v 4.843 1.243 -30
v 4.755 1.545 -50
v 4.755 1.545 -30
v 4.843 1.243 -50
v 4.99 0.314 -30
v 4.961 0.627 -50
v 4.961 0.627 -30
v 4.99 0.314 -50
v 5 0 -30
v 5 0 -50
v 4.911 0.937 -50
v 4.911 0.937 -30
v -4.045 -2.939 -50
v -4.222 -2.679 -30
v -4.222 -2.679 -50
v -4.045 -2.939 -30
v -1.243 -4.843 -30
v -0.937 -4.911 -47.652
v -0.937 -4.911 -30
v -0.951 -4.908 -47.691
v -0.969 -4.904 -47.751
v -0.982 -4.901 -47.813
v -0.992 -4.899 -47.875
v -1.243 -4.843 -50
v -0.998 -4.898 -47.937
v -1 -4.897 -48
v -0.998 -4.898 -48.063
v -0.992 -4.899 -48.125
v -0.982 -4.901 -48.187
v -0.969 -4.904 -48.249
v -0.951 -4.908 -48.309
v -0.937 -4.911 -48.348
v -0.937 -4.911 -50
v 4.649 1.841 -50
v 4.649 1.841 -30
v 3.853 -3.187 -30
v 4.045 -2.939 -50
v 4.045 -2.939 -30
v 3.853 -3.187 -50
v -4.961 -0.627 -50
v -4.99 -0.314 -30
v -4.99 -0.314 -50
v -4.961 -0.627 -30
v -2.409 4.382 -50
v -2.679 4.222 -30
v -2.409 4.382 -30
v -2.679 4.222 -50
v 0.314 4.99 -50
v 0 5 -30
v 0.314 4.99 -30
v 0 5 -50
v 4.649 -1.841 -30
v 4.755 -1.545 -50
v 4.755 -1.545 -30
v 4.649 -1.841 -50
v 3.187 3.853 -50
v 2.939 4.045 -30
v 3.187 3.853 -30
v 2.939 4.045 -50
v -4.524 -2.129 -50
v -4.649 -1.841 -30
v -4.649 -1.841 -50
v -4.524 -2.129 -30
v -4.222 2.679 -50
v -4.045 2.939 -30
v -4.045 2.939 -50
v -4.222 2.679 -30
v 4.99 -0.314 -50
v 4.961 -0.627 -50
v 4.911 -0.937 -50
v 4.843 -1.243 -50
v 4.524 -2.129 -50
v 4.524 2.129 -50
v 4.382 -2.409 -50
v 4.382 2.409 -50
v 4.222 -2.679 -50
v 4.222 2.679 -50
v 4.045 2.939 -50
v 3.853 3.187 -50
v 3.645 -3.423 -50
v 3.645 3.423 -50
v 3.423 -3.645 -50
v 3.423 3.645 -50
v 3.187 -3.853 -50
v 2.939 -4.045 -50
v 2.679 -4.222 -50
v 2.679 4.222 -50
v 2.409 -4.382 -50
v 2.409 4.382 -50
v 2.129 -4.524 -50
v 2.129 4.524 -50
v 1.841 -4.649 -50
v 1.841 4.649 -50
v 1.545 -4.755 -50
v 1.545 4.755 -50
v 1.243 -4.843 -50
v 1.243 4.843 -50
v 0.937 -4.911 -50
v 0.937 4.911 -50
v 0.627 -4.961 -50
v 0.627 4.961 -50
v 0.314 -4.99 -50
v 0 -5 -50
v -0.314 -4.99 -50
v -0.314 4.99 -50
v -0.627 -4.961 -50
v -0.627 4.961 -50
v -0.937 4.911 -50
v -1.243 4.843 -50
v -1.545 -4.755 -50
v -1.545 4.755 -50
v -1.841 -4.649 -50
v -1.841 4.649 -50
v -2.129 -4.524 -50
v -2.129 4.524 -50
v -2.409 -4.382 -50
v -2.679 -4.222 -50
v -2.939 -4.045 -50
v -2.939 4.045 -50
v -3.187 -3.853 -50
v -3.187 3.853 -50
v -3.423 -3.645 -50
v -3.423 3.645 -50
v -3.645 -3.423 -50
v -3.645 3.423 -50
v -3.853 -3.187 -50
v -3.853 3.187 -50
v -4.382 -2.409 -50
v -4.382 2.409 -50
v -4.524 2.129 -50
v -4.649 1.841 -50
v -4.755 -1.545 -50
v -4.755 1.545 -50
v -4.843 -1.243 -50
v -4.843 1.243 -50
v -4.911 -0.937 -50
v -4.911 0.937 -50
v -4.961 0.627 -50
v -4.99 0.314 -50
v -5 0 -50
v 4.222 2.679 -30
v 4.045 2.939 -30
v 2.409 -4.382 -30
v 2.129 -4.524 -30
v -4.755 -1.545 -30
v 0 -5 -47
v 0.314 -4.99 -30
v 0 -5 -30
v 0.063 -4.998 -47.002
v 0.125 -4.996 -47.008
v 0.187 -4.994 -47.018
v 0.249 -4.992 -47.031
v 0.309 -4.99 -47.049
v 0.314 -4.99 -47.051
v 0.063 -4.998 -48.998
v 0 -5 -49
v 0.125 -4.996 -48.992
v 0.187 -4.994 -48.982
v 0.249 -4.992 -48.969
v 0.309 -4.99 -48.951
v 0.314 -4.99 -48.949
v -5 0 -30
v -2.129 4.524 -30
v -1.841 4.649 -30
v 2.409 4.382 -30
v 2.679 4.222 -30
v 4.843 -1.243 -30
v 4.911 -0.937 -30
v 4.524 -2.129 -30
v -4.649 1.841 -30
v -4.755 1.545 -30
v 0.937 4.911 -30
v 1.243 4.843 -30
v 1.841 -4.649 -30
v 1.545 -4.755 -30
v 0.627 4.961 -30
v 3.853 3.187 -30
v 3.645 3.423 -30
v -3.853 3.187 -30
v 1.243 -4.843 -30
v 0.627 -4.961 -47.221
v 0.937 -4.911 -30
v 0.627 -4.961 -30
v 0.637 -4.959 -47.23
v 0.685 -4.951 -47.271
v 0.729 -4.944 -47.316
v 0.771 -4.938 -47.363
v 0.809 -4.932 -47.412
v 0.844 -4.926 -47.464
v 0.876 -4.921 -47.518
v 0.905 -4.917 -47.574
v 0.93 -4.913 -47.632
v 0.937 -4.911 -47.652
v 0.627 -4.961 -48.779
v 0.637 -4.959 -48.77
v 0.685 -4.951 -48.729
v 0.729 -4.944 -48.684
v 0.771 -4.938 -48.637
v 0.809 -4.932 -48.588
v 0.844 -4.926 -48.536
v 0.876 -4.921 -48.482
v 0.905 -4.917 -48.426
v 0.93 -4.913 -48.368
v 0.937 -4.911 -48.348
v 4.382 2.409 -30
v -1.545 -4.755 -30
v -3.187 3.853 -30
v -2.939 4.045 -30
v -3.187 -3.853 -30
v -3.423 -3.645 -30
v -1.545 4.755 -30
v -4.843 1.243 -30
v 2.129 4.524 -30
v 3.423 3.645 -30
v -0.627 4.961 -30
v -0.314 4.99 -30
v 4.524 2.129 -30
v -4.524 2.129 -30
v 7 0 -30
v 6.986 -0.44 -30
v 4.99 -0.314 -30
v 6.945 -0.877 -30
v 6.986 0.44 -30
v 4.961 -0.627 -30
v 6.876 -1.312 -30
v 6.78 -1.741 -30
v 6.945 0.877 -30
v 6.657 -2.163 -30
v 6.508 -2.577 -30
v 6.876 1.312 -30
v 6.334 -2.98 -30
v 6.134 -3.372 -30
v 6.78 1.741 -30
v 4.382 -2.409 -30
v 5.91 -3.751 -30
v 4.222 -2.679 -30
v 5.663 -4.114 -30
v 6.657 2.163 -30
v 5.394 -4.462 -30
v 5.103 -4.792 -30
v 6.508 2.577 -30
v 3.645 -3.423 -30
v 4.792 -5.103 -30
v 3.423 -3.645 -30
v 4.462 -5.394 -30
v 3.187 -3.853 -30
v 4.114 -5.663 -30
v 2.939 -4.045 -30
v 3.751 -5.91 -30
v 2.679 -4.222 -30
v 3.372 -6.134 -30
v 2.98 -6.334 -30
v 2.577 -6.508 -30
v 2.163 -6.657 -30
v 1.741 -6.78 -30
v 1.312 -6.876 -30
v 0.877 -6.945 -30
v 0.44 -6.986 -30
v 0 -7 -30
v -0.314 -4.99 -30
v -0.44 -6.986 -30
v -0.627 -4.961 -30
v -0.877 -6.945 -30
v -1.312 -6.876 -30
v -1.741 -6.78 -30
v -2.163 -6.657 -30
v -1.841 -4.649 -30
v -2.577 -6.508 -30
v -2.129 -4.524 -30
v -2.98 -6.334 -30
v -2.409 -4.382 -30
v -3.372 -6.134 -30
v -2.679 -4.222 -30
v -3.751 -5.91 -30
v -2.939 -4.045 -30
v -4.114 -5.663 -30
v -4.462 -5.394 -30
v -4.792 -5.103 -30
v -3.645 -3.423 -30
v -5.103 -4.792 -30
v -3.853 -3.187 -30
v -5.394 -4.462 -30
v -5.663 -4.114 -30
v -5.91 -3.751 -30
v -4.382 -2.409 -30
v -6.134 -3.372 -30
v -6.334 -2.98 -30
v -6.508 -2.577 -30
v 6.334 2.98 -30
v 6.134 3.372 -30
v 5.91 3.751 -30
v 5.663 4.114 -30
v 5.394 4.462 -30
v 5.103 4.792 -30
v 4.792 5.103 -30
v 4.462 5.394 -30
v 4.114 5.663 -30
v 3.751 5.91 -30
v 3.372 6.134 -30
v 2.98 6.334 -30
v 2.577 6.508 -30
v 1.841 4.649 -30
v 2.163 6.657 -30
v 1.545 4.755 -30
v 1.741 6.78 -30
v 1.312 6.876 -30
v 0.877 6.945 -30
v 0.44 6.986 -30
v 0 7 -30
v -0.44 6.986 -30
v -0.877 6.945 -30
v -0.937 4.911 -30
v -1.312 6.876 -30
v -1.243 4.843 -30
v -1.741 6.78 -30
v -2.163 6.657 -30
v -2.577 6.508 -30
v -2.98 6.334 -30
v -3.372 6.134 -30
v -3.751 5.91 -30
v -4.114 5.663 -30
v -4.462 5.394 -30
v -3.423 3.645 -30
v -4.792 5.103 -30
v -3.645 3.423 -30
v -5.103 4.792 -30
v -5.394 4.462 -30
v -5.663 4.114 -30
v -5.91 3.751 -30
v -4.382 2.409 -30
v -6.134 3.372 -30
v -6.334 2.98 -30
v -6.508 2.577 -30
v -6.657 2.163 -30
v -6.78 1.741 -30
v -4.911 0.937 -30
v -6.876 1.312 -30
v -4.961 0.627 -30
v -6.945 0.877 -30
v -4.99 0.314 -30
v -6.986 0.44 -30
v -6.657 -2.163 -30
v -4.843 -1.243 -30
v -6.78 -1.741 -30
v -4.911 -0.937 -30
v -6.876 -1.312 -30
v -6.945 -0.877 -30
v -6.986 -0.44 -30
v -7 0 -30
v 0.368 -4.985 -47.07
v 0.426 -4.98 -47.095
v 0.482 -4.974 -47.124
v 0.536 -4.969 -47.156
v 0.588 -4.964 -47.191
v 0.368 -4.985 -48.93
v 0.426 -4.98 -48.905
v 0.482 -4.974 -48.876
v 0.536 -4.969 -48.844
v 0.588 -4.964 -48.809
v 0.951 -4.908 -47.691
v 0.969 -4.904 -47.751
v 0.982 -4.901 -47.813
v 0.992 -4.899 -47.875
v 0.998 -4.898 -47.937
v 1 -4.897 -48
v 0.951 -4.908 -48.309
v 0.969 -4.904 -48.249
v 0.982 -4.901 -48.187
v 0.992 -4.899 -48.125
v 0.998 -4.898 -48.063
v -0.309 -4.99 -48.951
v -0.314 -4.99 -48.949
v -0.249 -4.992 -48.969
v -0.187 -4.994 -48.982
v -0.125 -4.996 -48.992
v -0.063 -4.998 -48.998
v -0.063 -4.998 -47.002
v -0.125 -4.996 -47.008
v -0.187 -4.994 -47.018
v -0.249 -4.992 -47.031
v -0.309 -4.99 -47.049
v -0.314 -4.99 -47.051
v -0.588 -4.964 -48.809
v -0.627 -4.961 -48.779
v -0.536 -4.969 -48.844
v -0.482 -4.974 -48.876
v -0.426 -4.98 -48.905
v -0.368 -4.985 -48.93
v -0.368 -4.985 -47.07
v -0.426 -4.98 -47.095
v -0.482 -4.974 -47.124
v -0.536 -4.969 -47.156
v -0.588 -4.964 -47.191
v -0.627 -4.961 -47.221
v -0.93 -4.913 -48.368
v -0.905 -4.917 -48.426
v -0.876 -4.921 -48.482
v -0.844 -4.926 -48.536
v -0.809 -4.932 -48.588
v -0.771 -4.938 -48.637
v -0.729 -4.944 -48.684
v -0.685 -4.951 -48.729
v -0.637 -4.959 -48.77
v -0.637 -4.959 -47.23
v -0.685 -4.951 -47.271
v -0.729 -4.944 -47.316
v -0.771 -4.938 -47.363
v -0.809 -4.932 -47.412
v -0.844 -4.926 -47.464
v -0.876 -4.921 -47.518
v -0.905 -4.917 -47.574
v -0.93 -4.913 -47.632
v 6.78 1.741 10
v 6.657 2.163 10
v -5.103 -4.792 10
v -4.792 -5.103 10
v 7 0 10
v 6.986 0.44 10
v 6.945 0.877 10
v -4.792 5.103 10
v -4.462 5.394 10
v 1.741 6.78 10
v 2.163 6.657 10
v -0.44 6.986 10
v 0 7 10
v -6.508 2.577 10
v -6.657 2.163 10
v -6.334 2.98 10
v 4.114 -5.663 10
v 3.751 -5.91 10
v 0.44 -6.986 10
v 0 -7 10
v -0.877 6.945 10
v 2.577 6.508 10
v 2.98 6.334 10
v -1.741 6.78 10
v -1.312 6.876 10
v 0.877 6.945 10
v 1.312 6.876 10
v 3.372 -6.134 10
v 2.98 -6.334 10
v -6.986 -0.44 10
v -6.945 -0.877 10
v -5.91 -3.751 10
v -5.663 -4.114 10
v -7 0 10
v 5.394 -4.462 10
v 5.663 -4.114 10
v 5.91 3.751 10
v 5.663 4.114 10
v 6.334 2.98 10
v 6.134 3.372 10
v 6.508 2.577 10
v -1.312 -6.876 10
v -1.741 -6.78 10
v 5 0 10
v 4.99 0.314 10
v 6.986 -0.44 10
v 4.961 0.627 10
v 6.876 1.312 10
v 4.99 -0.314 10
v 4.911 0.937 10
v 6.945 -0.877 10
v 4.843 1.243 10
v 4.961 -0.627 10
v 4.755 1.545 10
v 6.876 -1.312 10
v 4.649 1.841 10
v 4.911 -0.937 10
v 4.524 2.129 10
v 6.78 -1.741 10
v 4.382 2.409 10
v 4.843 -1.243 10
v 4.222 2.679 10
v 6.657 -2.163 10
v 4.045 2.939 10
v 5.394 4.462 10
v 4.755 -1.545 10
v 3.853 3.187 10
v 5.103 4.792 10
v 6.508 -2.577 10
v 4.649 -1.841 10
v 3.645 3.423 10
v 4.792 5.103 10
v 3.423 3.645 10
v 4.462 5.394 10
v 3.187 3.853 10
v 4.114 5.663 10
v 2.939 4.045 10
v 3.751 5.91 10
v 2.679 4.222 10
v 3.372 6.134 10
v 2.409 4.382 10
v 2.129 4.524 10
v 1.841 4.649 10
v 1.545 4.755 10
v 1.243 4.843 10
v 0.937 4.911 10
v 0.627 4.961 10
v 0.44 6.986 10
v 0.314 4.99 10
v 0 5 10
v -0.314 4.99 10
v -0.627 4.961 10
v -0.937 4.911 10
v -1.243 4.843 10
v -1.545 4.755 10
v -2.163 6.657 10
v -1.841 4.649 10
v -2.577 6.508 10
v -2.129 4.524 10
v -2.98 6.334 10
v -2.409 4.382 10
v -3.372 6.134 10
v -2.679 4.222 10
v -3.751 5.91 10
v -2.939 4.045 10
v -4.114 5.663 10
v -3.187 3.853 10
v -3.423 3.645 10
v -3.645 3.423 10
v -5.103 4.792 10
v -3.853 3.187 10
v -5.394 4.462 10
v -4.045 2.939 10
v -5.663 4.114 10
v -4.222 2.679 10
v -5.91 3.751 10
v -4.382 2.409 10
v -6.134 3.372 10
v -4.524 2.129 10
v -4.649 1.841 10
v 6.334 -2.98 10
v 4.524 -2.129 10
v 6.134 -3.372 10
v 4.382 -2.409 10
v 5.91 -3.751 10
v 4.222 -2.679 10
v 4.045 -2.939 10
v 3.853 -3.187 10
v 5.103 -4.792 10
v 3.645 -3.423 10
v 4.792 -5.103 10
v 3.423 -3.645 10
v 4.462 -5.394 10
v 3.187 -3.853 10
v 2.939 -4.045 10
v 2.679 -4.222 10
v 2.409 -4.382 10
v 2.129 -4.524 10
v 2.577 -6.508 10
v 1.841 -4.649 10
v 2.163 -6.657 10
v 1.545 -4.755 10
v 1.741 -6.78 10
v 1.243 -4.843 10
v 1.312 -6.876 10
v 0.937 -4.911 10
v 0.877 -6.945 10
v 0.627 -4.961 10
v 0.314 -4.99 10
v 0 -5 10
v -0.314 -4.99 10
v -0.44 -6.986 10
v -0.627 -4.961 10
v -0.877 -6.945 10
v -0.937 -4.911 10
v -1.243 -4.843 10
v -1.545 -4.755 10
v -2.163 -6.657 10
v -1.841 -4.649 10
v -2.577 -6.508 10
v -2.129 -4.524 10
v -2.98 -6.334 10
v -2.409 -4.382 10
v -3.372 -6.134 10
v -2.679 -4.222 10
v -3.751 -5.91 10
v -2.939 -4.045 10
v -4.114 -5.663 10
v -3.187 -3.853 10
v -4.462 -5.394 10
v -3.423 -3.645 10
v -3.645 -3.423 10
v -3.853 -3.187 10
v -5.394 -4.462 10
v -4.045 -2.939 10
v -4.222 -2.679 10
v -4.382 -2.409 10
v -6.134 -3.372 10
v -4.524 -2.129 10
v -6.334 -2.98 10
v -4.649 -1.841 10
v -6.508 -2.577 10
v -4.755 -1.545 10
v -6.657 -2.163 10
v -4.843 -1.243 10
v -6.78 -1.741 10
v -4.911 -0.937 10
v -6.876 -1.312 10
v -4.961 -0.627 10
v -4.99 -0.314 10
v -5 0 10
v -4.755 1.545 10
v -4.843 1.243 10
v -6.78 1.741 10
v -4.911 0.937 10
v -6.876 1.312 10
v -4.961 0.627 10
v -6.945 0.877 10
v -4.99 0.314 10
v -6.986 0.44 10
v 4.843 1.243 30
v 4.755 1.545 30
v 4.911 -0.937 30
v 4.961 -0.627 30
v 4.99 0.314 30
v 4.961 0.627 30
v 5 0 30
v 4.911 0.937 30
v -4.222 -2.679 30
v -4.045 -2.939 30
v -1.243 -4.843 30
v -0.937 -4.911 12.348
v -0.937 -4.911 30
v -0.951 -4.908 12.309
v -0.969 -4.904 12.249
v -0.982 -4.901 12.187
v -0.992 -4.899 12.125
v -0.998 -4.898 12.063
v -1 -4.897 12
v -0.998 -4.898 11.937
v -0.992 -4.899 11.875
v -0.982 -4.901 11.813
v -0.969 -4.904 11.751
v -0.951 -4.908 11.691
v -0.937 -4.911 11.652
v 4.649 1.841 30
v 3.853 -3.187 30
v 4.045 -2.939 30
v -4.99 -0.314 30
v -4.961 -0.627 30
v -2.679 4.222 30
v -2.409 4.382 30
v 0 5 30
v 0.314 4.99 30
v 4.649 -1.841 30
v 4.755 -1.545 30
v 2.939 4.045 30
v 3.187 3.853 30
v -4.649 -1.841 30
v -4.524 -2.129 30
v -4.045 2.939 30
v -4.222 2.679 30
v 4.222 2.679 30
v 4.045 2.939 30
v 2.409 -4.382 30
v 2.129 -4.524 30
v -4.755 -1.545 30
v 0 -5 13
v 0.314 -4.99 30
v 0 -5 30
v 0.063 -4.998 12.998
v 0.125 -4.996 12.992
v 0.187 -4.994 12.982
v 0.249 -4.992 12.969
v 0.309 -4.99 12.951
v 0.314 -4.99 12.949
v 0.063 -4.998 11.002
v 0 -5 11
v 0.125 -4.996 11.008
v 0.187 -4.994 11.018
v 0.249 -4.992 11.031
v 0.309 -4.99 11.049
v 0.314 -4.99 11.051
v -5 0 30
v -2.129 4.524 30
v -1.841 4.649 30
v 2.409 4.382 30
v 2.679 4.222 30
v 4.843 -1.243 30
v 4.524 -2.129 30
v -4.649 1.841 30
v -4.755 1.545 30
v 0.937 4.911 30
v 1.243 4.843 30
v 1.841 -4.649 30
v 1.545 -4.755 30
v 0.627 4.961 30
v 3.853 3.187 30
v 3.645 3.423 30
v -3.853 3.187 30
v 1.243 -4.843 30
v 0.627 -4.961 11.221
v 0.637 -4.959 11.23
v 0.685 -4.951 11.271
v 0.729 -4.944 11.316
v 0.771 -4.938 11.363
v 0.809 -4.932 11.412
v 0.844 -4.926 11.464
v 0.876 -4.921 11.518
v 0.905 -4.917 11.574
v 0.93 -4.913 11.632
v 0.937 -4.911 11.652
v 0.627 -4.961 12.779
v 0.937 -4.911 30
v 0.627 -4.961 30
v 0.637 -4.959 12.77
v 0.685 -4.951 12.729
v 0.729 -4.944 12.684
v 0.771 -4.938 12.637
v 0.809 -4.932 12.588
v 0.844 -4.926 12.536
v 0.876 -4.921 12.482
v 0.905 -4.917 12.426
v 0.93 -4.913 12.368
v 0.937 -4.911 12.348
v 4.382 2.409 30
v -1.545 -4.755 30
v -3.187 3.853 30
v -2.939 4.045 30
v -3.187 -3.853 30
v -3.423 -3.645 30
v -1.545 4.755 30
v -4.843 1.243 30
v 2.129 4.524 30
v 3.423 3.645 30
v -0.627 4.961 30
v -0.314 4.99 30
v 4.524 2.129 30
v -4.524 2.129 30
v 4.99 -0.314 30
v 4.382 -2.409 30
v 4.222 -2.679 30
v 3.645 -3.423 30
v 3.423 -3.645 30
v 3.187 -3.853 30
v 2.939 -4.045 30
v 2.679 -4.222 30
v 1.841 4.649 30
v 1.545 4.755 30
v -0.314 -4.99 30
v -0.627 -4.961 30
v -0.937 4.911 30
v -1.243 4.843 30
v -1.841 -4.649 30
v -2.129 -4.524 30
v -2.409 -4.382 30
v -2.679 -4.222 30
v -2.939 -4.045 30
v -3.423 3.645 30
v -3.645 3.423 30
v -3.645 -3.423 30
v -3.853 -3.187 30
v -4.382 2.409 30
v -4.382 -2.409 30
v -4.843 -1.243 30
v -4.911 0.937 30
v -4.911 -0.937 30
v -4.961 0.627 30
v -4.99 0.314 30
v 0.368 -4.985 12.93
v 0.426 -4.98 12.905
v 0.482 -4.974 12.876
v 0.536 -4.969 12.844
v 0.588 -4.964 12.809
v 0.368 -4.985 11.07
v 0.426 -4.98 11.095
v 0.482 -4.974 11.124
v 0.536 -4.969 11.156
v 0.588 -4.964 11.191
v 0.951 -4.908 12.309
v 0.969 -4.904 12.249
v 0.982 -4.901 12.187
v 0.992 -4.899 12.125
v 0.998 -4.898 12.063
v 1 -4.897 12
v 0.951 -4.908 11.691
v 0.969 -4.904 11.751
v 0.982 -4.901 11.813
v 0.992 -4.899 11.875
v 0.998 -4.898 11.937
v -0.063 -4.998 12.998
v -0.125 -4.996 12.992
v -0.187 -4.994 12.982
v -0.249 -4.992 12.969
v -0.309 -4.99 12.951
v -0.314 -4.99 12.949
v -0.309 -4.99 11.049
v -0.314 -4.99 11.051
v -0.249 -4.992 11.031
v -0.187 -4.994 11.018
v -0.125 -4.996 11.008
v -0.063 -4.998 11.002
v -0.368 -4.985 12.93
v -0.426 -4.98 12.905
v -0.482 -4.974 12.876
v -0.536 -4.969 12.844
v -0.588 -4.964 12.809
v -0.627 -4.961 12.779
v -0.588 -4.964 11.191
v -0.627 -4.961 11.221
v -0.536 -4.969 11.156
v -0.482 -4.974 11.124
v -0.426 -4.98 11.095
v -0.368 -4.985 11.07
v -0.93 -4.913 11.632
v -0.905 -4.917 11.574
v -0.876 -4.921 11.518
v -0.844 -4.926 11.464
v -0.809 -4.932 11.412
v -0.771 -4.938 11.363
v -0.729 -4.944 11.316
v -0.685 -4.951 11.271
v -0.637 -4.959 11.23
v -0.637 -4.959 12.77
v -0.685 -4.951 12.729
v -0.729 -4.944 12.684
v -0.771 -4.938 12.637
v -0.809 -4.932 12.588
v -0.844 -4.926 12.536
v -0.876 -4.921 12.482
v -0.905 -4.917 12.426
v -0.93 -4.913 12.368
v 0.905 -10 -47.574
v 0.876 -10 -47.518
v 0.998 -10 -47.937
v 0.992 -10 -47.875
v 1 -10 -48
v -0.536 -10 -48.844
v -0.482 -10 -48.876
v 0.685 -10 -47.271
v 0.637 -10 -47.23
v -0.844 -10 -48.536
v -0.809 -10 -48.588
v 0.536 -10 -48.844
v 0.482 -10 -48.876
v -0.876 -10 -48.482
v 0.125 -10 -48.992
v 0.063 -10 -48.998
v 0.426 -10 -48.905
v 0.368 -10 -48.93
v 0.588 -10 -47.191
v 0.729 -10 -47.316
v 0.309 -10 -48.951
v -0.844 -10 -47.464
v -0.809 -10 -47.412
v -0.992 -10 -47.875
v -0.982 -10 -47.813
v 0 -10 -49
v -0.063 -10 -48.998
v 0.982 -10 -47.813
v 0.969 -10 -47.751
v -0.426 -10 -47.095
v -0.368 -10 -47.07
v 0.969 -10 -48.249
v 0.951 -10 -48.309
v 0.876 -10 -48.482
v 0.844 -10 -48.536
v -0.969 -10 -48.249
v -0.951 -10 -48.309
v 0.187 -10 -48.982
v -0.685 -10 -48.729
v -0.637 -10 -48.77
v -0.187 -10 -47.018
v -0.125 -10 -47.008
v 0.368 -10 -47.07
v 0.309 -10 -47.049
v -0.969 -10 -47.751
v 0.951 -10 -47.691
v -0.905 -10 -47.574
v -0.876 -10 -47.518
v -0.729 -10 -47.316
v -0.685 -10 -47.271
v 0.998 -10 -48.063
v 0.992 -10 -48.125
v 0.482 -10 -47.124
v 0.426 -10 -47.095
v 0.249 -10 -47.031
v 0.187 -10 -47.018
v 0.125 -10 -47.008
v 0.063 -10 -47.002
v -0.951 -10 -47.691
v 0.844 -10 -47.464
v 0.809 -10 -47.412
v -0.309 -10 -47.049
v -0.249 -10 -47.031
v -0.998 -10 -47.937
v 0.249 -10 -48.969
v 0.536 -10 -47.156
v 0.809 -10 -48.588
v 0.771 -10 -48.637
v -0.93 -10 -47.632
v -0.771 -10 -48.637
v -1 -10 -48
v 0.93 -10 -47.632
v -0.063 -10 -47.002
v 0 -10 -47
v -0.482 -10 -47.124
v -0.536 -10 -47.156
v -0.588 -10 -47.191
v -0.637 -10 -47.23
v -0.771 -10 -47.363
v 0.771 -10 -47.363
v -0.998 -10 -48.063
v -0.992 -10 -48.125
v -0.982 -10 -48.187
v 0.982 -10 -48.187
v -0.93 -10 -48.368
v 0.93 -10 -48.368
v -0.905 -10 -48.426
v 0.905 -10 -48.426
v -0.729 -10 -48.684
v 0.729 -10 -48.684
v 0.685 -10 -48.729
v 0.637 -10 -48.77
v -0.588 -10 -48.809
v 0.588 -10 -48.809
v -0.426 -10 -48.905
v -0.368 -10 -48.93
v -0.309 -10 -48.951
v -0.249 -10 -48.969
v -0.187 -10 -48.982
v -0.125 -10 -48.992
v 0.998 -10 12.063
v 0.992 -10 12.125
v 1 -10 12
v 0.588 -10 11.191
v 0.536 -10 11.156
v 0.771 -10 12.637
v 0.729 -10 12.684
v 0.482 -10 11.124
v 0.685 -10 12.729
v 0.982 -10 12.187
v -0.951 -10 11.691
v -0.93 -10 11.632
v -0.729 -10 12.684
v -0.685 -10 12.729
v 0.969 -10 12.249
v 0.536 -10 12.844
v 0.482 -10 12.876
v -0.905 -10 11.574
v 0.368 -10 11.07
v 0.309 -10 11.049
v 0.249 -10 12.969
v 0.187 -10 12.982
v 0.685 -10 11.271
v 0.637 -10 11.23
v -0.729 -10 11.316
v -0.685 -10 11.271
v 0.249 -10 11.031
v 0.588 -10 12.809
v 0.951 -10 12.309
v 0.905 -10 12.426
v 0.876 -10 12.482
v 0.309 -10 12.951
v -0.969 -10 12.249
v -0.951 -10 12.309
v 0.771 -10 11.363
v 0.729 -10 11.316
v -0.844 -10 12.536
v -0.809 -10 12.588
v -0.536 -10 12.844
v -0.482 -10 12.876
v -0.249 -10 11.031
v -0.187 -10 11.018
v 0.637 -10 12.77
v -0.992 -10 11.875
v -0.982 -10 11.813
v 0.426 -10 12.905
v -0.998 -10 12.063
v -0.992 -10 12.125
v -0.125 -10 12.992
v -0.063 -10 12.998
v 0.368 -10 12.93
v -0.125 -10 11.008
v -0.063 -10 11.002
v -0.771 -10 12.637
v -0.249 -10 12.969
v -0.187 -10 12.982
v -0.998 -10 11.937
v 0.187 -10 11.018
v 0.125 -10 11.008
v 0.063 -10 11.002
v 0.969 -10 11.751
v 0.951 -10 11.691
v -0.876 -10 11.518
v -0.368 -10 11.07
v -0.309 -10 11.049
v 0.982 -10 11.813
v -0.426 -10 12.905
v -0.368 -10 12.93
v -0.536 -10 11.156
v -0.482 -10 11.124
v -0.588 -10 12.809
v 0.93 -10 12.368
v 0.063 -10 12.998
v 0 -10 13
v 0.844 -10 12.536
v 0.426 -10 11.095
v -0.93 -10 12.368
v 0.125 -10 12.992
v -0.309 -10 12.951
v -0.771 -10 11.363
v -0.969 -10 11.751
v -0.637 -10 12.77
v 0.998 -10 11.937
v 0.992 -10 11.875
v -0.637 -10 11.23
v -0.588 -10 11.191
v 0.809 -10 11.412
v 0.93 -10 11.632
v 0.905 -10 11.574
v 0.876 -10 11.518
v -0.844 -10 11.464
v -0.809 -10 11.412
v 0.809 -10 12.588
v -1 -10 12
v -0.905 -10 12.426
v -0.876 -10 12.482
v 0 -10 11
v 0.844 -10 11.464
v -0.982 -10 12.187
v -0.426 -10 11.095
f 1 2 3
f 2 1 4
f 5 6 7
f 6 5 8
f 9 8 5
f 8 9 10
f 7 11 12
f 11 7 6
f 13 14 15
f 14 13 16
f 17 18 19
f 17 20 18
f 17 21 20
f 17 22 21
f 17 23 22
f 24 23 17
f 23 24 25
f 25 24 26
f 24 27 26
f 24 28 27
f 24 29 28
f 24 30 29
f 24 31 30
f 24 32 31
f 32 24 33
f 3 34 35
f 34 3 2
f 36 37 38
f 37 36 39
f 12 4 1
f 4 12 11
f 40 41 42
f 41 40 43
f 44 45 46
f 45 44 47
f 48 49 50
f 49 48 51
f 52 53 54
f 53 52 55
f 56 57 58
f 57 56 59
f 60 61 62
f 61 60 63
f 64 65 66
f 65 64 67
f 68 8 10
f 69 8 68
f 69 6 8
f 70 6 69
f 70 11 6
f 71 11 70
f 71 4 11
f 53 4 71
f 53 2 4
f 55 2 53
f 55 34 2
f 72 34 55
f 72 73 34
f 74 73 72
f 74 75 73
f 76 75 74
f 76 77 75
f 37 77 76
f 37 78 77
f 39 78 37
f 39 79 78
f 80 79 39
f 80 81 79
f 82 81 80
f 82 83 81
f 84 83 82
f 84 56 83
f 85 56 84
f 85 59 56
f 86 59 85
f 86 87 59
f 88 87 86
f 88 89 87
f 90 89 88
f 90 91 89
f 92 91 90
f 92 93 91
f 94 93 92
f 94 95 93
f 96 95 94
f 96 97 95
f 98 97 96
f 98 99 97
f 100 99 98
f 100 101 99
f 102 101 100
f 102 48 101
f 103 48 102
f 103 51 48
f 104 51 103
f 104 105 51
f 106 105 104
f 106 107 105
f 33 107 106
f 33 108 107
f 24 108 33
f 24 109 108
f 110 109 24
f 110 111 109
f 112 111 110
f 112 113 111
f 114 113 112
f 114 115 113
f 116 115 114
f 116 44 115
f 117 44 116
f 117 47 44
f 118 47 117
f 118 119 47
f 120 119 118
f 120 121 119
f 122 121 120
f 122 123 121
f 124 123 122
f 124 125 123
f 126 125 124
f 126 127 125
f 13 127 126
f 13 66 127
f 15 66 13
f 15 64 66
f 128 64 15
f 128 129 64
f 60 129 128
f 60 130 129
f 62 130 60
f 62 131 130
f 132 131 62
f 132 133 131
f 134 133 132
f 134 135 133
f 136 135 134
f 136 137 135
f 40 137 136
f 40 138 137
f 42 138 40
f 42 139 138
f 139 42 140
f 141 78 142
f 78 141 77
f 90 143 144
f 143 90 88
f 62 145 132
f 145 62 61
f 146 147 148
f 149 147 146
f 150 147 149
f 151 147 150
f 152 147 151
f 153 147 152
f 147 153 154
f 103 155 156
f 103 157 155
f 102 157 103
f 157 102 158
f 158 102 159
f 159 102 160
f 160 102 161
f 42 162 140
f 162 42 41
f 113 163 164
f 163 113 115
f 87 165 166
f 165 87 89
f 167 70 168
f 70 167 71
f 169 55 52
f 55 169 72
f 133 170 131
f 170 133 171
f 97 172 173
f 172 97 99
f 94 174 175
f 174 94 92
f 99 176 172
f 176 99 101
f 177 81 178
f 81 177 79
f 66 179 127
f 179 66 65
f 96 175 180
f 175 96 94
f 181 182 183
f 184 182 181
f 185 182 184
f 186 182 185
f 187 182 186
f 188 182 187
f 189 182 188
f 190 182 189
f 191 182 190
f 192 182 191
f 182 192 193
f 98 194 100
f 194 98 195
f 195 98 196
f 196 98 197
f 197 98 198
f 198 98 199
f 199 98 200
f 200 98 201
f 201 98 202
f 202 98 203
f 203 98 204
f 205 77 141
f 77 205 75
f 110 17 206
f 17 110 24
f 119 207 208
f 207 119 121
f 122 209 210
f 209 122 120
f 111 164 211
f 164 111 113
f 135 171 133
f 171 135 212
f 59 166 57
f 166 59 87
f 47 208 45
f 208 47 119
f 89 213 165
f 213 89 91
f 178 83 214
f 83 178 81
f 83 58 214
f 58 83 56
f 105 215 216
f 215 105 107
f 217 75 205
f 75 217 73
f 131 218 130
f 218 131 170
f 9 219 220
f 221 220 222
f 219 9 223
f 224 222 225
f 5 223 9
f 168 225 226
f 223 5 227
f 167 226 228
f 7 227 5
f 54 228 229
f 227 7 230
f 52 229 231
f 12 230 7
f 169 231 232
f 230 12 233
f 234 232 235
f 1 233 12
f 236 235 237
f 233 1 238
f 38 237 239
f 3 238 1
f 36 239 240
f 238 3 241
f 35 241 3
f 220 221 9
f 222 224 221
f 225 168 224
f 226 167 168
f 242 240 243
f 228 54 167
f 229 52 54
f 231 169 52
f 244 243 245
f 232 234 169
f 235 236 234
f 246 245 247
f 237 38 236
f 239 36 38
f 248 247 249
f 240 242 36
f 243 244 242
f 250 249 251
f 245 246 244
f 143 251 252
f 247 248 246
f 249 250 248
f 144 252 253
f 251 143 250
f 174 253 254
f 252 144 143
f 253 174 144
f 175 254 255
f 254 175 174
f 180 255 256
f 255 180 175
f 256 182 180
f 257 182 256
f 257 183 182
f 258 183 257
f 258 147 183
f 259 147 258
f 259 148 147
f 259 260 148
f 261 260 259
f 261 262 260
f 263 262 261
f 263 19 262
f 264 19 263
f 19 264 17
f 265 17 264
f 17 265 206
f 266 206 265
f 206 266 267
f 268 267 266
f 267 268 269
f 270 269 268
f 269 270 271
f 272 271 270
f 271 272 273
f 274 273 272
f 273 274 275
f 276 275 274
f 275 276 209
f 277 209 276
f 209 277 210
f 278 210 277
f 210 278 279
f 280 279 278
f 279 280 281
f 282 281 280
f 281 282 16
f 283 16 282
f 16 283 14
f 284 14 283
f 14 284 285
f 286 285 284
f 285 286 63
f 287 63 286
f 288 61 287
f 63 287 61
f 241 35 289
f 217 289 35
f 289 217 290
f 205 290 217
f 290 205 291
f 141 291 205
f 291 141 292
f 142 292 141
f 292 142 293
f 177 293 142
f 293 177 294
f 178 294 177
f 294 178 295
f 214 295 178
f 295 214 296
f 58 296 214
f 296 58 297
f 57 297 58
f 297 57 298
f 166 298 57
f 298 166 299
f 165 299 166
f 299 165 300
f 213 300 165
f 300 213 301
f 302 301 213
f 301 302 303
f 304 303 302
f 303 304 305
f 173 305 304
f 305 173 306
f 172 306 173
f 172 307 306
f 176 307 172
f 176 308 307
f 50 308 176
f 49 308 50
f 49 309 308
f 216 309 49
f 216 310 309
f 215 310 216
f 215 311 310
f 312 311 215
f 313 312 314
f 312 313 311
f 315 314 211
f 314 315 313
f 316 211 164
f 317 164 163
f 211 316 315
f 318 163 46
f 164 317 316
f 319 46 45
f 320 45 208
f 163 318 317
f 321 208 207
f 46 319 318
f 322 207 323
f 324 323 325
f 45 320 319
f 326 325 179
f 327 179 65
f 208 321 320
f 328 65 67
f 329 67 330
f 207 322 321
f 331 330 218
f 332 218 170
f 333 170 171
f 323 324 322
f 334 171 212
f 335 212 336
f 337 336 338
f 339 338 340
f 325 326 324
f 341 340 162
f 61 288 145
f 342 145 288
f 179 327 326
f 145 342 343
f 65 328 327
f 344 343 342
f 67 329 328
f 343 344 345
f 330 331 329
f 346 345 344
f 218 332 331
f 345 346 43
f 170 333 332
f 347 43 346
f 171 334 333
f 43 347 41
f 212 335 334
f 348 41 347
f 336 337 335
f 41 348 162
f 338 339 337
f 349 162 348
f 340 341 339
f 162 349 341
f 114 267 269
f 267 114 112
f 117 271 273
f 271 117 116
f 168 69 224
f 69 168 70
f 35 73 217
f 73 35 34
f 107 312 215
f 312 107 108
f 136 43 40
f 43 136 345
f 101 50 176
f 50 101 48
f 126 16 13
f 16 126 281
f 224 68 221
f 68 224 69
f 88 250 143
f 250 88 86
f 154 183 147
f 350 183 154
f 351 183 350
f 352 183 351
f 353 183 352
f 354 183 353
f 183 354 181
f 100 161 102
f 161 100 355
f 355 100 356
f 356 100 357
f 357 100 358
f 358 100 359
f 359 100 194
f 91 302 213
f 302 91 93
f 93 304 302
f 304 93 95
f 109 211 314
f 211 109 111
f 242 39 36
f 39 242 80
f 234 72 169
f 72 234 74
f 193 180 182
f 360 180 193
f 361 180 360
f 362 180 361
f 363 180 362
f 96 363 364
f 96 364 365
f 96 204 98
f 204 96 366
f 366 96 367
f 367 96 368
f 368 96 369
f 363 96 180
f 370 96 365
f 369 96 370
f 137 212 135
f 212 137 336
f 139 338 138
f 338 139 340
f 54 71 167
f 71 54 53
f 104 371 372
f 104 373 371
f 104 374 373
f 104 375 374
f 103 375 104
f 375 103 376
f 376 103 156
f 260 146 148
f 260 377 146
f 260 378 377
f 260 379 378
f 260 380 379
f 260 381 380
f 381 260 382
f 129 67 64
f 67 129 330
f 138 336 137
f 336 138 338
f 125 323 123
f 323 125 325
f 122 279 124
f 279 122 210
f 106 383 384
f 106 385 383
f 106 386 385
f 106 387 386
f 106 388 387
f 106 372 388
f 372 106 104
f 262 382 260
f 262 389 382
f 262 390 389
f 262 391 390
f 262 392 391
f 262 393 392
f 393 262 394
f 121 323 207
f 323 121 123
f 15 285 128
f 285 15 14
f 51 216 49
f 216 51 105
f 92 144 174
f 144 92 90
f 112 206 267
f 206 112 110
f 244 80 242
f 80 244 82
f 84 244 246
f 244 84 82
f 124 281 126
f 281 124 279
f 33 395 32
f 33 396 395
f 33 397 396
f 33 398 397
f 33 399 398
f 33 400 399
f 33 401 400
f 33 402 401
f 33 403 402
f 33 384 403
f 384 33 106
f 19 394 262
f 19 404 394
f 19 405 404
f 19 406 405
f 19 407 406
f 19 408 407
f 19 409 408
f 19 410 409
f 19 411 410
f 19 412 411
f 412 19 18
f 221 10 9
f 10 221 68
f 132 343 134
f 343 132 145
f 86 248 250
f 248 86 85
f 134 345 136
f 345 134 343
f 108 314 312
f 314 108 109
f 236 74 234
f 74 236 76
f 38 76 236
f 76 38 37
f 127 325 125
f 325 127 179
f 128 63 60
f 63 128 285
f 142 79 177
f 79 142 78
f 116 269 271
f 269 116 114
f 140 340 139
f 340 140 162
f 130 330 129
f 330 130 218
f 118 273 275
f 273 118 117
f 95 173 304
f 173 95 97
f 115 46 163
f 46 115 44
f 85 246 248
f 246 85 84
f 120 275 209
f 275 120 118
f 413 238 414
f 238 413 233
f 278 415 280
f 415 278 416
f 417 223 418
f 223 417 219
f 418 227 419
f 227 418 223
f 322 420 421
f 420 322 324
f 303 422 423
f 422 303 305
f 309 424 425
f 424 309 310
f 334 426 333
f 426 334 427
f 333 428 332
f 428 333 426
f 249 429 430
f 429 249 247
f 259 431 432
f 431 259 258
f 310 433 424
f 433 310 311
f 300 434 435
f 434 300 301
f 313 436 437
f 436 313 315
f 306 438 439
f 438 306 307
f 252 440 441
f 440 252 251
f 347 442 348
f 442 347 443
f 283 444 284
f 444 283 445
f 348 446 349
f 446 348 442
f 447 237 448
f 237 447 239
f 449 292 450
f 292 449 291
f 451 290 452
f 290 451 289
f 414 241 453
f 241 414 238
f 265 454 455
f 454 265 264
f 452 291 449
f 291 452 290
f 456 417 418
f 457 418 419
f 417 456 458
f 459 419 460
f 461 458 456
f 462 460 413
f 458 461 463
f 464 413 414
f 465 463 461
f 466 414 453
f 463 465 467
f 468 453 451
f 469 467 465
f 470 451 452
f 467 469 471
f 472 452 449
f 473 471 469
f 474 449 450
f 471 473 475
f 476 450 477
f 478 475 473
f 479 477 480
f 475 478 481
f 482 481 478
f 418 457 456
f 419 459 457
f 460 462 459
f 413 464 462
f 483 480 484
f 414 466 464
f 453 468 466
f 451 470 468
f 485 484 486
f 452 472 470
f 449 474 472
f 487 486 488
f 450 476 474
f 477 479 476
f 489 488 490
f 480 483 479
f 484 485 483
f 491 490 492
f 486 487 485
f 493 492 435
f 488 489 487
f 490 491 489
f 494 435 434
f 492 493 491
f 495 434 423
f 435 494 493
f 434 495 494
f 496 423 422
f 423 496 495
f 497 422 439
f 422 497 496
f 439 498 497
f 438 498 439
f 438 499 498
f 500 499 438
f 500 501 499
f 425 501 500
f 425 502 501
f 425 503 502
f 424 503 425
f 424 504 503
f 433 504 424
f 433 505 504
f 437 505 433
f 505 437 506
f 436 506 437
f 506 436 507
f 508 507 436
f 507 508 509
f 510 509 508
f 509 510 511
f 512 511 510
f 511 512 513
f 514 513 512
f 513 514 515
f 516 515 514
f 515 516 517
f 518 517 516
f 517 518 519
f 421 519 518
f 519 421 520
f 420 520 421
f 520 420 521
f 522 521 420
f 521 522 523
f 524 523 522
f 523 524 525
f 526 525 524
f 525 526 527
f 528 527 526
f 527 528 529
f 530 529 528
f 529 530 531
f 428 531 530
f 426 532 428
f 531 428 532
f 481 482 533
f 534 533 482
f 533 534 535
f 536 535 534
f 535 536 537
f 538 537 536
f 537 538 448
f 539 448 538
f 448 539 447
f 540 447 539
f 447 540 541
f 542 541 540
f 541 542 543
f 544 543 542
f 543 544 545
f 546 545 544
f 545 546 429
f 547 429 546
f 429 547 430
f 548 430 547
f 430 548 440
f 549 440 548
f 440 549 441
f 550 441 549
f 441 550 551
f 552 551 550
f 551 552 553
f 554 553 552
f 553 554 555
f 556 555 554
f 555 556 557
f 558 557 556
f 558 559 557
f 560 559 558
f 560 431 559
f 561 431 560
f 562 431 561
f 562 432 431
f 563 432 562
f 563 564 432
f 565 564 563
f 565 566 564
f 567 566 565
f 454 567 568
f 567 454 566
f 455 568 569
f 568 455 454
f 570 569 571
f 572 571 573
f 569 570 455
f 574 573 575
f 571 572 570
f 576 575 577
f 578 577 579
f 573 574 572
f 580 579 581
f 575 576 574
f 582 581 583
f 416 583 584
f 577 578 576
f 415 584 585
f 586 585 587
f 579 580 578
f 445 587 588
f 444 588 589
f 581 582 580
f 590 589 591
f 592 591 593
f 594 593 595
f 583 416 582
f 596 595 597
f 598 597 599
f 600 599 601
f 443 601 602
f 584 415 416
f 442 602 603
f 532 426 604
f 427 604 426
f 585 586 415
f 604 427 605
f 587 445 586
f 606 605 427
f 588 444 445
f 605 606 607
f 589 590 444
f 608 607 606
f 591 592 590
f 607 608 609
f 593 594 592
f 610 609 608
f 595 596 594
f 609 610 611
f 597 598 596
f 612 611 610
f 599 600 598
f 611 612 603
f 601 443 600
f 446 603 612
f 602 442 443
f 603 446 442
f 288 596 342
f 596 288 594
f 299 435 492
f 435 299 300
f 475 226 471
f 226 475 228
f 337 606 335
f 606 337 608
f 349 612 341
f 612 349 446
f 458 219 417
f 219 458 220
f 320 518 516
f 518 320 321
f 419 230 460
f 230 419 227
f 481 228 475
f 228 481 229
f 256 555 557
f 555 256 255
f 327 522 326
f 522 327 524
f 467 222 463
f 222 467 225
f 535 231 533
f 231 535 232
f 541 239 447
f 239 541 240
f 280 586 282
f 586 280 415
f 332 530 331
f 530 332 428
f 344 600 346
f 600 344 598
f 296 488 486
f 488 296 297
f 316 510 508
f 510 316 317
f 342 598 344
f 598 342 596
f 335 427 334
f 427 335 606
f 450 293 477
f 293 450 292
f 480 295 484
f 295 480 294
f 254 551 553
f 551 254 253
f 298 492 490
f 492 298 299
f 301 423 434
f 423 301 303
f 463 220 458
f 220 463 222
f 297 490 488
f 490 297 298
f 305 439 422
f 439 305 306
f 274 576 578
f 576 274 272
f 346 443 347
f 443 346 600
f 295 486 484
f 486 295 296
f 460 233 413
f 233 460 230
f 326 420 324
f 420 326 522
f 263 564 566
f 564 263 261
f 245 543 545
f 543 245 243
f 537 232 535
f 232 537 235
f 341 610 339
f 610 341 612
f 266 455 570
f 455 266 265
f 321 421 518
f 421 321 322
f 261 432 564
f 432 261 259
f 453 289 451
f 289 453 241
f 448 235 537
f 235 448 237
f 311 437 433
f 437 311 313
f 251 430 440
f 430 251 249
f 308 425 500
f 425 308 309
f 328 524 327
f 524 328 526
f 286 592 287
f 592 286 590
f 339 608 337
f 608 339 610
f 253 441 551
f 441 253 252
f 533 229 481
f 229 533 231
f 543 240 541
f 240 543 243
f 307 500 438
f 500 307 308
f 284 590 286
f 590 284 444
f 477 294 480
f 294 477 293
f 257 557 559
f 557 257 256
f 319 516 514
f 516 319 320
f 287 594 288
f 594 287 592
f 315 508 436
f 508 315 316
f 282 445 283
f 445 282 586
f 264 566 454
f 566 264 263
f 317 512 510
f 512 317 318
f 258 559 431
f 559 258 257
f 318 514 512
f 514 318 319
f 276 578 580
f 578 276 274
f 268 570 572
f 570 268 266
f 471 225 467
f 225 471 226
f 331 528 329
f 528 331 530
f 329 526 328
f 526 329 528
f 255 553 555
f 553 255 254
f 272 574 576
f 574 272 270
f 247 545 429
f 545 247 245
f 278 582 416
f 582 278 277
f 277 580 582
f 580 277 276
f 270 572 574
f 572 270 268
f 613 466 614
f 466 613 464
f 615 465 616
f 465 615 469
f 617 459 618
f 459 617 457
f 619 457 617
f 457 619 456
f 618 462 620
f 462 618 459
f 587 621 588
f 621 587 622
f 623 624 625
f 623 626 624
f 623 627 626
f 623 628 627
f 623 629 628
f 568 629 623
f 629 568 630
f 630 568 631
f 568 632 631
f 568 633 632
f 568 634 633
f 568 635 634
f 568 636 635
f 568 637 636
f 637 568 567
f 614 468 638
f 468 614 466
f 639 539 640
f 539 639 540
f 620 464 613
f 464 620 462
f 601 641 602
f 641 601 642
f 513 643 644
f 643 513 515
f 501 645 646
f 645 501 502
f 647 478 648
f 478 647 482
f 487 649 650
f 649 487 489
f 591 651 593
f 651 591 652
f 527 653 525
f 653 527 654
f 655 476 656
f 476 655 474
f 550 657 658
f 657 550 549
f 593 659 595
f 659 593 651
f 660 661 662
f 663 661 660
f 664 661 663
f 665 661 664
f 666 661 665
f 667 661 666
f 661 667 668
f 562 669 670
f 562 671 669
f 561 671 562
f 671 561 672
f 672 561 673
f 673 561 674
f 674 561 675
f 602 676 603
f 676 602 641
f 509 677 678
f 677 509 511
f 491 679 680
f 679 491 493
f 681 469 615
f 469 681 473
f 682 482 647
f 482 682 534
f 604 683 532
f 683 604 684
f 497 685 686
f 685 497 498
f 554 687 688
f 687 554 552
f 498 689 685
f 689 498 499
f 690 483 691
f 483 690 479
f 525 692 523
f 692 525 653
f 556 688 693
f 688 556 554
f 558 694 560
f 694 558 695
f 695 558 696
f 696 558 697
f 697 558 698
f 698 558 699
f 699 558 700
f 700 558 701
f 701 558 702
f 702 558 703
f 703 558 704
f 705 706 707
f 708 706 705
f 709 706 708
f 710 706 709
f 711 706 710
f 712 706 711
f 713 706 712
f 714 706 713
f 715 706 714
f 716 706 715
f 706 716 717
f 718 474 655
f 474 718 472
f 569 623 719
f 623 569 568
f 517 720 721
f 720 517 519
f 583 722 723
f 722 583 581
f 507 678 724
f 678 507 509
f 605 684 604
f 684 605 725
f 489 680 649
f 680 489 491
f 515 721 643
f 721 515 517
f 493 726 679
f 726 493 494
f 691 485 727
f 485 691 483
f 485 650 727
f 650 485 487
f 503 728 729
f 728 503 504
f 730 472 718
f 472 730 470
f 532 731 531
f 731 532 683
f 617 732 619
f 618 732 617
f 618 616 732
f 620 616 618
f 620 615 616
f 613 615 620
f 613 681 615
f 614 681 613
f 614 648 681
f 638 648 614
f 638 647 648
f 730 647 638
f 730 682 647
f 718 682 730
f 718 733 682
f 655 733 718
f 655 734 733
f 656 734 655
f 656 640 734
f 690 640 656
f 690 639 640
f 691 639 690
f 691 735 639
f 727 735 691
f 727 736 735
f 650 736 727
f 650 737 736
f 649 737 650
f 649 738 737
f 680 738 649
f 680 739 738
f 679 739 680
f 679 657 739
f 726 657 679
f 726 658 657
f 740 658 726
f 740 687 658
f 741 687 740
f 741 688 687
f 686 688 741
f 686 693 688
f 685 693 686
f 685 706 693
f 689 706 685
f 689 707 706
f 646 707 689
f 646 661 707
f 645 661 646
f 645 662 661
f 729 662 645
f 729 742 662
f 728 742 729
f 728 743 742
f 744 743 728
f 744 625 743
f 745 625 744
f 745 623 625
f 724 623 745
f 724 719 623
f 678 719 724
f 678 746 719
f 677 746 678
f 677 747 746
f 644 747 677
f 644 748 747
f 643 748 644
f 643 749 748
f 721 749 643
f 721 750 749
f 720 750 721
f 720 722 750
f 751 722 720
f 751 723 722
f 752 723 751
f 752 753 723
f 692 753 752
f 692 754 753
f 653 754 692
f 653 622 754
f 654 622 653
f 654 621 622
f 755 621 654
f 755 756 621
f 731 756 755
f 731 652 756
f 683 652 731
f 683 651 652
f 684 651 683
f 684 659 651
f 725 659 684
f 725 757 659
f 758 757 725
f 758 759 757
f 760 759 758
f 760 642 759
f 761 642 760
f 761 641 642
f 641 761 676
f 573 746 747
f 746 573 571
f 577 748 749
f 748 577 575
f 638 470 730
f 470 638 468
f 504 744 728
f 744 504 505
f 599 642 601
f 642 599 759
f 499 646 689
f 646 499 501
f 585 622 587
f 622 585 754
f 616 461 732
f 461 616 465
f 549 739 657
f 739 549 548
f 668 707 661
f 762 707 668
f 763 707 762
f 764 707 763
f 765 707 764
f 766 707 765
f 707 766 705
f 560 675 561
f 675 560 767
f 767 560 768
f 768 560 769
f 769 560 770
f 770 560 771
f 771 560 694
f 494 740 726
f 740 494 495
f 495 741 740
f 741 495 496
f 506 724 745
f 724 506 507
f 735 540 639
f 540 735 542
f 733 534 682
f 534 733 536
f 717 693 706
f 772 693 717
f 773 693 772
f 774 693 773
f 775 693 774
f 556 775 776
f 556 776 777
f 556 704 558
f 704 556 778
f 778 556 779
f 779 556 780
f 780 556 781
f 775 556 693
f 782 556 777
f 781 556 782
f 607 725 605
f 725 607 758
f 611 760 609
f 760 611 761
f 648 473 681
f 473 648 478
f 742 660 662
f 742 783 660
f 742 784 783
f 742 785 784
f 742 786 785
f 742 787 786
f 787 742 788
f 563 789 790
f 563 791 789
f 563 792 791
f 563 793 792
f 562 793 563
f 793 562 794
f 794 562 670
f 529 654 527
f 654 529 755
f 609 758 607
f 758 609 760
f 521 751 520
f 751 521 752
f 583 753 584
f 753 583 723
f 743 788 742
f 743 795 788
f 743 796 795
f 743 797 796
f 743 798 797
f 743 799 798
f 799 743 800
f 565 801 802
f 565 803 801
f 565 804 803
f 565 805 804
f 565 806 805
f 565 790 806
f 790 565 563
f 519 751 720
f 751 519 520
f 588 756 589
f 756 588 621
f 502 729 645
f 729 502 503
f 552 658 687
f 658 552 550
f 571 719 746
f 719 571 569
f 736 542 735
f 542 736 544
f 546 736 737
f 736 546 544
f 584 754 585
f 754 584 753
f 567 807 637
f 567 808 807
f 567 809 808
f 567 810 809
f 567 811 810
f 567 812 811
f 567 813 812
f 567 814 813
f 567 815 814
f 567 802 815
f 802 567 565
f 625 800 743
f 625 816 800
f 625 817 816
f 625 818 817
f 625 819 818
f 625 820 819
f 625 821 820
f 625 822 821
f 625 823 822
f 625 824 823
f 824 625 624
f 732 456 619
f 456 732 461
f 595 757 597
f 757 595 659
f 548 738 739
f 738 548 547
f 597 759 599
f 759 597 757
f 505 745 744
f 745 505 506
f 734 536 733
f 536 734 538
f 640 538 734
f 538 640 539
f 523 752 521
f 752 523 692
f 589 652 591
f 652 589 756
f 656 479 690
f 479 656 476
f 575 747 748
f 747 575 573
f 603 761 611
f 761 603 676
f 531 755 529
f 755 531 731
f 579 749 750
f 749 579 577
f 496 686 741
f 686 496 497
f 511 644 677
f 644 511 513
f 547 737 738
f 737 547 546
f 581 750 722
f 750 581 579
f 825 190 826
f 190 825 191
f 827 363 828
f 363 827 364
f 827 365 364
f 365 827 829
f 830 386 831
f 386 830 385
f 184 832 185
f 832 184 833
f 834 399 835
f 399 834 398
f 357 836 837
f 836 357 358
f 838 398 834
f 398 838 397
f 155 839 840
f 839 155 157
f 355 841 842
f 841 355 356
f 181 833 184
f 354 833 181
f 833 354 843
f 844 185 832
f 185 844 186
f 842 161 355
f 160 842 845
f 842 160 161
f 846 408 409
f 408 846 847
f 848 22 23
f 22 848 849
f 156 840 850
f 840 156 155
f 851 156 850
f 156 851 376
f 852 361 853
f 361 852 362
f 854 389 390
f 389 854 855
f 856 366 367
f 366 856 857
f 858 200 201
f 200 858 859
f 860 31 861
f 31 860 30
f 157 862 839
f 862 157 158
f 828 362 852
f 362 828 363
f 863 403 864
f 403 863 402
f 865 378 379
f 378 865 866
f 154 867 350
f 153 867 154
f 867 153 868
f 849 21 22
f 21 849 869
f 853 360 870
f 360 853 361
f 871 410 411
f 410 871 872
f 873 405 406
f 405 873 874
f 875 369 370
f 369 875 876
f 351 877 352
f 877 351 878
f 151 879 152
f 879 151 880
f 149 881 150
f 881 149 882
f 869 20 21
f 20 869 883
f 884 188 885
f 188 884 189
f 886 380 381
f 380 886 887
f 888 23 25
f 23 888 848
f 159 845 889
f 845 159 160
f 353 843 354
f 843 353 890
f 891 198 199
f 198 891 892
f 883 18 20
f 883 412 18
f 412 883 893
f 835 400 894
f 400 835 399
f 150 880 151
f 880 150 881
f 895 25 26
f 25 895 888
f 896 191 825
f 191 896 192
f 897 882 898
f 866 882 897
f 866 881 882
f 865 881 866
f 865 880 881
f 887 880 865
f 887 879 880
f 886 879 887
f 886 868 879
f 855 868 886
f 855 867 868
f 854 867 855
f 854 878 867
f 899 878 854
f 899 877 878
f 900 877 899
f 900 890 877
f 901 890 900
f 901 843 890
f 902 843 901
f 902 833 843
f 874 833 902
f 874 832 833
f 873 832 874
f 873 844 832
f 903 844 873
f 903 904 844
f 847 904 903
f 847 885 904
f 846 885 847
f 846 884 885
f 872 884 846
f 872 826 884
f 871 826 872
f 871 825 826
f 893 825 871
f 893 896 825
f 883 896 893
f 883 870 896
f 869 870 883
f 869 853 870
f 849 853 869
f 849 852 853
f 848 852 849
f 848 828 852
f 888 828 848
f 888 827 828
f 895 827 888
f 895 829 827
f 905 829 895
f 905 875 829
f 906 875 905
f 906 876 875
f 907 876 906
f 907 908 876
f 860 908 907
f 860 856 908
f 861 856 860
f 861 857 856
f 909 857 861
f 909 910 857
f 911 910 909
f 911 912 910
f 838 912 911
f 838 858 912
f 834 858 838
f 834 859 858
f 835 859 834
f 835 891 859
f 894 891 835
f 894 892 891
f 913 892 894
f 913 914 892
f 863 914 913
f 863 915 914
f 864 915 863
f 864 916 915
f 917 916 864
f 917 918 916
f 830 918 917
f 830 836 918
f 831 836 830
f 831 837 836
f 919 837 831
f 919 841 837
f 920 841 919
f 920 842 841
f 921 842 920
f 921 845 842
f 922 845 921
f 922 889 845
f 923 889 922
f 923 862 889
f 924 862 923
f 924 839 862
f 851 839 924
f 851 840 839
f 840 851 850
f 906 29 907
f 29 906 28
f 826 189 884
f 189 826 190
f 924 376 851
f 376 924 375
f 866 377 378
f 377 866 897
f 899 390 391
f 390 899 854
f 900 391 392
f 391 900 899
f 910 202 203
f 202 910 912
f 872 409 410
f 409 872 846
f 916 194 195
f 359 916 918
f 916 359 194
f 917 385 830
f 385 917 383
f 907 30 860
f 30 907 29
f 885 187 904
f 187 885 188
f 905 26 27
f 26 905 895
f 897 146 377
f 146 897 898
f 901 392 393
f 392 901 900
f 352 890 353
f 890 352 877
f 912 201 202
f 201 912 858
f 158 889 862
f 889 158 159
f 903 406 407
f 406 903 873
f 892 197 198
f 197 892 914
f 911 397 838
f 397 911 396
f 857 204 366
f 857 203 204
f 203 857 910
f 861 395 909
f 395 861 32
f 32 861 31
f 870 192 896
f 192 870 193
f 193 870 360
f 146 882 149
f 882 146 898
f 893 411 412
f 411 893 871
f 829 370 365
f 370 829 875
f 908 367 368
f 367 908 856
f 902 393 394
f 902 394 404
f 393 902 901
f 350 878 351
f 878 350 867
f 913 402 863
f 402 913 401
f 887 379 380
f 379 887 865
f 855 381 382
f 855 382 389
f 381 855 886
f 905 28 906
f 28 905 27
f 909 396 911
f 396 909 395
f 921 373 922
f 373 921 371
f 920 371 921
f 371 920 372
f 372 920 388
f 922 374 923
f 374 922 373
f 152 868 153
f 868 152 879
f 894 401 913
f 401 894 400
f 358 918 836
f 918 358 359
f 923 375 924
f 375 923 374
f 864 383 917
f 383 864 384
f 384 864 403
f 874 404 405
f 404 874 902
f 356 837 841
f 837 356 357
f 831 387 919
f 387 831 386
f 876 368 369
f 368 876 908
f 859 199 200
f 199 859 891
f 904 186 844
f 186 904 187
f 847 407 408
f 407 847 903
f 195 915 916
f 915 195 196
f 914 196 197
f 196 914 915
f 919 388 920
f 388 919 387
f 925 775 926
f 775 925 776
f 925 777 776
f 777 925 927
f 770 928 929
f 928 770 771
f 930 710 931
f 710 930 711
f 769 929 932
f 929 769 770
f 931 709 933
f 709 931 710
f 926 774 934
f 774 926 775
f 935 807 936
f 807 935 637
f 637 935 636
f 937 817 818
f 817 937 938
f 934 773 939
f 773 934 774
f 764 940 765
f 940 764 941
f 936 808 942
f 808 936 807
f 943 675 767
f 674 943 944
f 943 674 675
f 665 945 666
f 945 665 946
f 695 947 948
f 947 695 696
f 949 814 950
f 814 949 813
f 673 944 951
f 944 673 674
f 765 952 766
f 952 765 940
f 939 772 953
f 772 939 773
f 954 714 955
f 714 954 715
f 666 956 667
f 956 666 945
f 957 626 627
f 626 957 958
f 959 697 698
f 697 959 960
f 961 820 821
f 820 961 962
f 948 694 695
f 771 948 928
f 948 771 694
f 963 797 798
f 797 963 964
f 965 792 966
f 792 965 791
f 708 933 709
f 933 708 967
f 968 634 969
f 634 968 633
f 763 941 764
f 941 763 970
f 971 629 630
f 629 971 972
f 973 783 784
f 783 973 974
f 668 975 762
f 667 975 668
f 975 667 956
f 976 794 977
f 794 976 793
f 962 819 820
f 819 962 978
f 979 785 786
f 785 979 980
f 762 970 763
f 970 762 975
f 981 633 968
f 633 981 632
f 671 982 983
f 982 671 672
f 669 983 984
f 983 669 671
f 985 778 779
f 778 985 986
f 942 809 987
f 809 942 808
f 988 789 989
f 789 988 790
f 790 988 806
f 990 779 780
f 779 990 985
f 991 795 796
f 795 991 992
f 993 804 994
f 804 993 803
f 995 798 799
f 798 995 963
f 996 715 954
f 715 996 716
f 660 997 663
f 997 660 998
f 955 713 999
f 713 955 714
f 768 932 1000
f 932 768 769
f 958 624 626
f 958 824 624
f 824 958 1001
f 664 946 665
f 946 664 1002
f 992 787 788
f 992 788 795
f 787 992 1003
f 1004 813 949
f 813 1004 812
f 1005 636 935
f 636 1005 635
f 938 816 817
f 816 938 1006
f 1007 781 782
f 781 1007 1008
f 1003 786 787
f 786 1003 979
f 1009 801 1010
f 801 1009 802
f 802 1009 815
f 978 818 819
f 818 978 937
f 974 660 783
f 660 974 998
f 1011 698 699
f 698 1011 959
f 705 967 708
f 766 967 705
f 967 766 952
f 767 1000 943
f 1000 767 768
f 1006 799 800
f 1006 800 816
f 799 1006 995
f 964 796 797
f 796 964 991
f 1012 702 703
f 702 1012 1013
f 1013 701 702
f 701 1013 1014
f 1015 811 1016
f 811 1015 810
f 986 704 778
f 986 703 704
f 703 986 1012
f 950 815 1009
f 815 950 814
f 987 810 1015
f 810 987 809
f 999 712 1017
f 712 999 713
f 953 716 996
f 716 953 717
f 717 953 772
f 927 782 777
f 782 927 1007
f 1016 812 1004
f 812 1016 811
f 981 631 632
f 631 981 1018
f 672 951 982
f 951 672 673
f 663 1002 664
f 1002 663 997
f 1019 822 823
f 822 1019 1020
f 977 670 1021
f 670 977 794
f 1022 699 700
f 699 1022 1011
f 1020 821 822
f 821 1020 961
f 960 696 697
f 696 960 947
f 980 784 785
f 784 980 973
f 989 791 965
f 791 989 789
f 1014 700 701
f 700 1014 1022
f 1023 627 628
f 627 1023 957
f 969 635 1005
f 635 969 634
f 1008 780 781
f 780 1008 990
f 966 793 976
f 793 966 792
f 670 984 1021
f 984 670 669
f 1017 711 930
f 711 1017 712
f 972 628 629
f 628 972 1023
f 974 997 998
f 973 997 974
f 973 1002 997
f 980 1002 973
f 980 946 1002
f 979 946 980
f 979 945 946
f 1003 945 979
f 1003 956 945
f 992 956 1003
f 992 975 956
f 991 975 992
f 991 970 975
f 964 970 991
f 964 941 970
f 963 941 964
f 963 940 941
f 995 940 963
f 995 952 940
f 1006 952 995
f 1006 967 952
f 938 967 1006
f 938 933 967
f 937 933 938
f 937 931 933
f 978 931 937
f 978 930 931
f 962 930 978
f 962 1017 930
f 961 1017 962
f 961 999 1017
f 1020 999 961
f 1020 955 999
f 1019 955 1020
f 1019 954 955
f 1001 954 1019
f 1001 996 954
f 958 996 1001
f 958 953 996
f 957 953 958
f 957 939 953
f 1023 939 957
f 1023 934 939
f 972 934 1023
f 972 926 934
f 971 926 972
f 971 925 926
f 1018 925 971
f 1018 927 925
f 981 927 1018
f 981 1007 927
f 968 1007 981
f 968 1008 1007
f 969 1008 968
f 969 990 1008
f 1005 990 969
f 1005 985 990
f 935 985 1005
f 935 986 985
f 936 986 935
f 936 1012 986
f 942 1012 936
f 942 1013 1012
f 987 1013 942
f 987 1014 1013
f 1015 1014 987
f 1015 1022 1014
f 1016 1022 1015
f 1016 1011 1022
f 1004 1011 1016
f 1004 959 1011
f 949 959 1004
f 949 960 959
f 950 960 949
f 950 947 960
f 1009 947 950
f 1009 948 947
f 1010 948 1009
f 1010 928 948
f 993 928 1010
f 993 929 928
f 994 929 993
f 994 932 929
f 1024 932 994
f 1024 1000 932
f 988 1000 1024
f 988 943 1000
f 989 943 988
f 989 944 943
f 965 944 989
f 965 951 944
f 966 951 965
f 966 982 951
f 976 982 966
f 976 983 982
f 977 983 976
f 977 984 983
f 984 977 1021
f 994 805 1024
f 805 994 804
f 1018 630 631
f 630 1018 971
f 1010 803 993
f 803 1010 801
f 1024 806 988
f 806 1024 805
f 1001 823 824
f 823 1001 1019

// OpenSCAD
// Parameters for the shaft
module shaft() {
    difference() {
        union() {
            // Main cylindrical sections
            translate([0, 0, -50]) cylinder(h = 20, r = 5, $fn = 100); // End section 1
            translate([0, 0, -30]) cylinder(h = 40, r = 7, $fn = 100); // Central section
            translate([0, 0, 10]) cylinder(h = 20, r = 5, $fn = 100); // End section 2

            // Grooves
            translate([0, 0, -45]) cylinder(h = 5, r = 4.5, $fn = 100); // Groove 1
            translate([0, 0, -35]) cylinder(h = 5, r = 4.5, $fn = 100); // Groove 2
            translate([0, 0, 5]) cylinder(h = 5, r = 4.5, $fn = 100); // Groove 3
            translate([0, 0, 15]) cylinder(h = 5, r = 4.5, $fn = 100); // Groove 4

            // Keyways
            translate([-1, -3, -50]) cube([2, 6, 20]); // Keyway 1
            translate([-1, -3, 10]) cube([2, 6, 20]); // Keyway 2

            // Holes for fasteners
            translate([0, 0, -48]) rotate([90, 0, 0]) cylinder(h = 10, r = 1, $fn = 100); // Hole 1
            translate([0, 0, 12]) rotate([90, 0, 0]) cylinder(h = 10, r = 1, $fn = 100); // Hole 2
        }
    }
}

// Render the shaft
shaft();
